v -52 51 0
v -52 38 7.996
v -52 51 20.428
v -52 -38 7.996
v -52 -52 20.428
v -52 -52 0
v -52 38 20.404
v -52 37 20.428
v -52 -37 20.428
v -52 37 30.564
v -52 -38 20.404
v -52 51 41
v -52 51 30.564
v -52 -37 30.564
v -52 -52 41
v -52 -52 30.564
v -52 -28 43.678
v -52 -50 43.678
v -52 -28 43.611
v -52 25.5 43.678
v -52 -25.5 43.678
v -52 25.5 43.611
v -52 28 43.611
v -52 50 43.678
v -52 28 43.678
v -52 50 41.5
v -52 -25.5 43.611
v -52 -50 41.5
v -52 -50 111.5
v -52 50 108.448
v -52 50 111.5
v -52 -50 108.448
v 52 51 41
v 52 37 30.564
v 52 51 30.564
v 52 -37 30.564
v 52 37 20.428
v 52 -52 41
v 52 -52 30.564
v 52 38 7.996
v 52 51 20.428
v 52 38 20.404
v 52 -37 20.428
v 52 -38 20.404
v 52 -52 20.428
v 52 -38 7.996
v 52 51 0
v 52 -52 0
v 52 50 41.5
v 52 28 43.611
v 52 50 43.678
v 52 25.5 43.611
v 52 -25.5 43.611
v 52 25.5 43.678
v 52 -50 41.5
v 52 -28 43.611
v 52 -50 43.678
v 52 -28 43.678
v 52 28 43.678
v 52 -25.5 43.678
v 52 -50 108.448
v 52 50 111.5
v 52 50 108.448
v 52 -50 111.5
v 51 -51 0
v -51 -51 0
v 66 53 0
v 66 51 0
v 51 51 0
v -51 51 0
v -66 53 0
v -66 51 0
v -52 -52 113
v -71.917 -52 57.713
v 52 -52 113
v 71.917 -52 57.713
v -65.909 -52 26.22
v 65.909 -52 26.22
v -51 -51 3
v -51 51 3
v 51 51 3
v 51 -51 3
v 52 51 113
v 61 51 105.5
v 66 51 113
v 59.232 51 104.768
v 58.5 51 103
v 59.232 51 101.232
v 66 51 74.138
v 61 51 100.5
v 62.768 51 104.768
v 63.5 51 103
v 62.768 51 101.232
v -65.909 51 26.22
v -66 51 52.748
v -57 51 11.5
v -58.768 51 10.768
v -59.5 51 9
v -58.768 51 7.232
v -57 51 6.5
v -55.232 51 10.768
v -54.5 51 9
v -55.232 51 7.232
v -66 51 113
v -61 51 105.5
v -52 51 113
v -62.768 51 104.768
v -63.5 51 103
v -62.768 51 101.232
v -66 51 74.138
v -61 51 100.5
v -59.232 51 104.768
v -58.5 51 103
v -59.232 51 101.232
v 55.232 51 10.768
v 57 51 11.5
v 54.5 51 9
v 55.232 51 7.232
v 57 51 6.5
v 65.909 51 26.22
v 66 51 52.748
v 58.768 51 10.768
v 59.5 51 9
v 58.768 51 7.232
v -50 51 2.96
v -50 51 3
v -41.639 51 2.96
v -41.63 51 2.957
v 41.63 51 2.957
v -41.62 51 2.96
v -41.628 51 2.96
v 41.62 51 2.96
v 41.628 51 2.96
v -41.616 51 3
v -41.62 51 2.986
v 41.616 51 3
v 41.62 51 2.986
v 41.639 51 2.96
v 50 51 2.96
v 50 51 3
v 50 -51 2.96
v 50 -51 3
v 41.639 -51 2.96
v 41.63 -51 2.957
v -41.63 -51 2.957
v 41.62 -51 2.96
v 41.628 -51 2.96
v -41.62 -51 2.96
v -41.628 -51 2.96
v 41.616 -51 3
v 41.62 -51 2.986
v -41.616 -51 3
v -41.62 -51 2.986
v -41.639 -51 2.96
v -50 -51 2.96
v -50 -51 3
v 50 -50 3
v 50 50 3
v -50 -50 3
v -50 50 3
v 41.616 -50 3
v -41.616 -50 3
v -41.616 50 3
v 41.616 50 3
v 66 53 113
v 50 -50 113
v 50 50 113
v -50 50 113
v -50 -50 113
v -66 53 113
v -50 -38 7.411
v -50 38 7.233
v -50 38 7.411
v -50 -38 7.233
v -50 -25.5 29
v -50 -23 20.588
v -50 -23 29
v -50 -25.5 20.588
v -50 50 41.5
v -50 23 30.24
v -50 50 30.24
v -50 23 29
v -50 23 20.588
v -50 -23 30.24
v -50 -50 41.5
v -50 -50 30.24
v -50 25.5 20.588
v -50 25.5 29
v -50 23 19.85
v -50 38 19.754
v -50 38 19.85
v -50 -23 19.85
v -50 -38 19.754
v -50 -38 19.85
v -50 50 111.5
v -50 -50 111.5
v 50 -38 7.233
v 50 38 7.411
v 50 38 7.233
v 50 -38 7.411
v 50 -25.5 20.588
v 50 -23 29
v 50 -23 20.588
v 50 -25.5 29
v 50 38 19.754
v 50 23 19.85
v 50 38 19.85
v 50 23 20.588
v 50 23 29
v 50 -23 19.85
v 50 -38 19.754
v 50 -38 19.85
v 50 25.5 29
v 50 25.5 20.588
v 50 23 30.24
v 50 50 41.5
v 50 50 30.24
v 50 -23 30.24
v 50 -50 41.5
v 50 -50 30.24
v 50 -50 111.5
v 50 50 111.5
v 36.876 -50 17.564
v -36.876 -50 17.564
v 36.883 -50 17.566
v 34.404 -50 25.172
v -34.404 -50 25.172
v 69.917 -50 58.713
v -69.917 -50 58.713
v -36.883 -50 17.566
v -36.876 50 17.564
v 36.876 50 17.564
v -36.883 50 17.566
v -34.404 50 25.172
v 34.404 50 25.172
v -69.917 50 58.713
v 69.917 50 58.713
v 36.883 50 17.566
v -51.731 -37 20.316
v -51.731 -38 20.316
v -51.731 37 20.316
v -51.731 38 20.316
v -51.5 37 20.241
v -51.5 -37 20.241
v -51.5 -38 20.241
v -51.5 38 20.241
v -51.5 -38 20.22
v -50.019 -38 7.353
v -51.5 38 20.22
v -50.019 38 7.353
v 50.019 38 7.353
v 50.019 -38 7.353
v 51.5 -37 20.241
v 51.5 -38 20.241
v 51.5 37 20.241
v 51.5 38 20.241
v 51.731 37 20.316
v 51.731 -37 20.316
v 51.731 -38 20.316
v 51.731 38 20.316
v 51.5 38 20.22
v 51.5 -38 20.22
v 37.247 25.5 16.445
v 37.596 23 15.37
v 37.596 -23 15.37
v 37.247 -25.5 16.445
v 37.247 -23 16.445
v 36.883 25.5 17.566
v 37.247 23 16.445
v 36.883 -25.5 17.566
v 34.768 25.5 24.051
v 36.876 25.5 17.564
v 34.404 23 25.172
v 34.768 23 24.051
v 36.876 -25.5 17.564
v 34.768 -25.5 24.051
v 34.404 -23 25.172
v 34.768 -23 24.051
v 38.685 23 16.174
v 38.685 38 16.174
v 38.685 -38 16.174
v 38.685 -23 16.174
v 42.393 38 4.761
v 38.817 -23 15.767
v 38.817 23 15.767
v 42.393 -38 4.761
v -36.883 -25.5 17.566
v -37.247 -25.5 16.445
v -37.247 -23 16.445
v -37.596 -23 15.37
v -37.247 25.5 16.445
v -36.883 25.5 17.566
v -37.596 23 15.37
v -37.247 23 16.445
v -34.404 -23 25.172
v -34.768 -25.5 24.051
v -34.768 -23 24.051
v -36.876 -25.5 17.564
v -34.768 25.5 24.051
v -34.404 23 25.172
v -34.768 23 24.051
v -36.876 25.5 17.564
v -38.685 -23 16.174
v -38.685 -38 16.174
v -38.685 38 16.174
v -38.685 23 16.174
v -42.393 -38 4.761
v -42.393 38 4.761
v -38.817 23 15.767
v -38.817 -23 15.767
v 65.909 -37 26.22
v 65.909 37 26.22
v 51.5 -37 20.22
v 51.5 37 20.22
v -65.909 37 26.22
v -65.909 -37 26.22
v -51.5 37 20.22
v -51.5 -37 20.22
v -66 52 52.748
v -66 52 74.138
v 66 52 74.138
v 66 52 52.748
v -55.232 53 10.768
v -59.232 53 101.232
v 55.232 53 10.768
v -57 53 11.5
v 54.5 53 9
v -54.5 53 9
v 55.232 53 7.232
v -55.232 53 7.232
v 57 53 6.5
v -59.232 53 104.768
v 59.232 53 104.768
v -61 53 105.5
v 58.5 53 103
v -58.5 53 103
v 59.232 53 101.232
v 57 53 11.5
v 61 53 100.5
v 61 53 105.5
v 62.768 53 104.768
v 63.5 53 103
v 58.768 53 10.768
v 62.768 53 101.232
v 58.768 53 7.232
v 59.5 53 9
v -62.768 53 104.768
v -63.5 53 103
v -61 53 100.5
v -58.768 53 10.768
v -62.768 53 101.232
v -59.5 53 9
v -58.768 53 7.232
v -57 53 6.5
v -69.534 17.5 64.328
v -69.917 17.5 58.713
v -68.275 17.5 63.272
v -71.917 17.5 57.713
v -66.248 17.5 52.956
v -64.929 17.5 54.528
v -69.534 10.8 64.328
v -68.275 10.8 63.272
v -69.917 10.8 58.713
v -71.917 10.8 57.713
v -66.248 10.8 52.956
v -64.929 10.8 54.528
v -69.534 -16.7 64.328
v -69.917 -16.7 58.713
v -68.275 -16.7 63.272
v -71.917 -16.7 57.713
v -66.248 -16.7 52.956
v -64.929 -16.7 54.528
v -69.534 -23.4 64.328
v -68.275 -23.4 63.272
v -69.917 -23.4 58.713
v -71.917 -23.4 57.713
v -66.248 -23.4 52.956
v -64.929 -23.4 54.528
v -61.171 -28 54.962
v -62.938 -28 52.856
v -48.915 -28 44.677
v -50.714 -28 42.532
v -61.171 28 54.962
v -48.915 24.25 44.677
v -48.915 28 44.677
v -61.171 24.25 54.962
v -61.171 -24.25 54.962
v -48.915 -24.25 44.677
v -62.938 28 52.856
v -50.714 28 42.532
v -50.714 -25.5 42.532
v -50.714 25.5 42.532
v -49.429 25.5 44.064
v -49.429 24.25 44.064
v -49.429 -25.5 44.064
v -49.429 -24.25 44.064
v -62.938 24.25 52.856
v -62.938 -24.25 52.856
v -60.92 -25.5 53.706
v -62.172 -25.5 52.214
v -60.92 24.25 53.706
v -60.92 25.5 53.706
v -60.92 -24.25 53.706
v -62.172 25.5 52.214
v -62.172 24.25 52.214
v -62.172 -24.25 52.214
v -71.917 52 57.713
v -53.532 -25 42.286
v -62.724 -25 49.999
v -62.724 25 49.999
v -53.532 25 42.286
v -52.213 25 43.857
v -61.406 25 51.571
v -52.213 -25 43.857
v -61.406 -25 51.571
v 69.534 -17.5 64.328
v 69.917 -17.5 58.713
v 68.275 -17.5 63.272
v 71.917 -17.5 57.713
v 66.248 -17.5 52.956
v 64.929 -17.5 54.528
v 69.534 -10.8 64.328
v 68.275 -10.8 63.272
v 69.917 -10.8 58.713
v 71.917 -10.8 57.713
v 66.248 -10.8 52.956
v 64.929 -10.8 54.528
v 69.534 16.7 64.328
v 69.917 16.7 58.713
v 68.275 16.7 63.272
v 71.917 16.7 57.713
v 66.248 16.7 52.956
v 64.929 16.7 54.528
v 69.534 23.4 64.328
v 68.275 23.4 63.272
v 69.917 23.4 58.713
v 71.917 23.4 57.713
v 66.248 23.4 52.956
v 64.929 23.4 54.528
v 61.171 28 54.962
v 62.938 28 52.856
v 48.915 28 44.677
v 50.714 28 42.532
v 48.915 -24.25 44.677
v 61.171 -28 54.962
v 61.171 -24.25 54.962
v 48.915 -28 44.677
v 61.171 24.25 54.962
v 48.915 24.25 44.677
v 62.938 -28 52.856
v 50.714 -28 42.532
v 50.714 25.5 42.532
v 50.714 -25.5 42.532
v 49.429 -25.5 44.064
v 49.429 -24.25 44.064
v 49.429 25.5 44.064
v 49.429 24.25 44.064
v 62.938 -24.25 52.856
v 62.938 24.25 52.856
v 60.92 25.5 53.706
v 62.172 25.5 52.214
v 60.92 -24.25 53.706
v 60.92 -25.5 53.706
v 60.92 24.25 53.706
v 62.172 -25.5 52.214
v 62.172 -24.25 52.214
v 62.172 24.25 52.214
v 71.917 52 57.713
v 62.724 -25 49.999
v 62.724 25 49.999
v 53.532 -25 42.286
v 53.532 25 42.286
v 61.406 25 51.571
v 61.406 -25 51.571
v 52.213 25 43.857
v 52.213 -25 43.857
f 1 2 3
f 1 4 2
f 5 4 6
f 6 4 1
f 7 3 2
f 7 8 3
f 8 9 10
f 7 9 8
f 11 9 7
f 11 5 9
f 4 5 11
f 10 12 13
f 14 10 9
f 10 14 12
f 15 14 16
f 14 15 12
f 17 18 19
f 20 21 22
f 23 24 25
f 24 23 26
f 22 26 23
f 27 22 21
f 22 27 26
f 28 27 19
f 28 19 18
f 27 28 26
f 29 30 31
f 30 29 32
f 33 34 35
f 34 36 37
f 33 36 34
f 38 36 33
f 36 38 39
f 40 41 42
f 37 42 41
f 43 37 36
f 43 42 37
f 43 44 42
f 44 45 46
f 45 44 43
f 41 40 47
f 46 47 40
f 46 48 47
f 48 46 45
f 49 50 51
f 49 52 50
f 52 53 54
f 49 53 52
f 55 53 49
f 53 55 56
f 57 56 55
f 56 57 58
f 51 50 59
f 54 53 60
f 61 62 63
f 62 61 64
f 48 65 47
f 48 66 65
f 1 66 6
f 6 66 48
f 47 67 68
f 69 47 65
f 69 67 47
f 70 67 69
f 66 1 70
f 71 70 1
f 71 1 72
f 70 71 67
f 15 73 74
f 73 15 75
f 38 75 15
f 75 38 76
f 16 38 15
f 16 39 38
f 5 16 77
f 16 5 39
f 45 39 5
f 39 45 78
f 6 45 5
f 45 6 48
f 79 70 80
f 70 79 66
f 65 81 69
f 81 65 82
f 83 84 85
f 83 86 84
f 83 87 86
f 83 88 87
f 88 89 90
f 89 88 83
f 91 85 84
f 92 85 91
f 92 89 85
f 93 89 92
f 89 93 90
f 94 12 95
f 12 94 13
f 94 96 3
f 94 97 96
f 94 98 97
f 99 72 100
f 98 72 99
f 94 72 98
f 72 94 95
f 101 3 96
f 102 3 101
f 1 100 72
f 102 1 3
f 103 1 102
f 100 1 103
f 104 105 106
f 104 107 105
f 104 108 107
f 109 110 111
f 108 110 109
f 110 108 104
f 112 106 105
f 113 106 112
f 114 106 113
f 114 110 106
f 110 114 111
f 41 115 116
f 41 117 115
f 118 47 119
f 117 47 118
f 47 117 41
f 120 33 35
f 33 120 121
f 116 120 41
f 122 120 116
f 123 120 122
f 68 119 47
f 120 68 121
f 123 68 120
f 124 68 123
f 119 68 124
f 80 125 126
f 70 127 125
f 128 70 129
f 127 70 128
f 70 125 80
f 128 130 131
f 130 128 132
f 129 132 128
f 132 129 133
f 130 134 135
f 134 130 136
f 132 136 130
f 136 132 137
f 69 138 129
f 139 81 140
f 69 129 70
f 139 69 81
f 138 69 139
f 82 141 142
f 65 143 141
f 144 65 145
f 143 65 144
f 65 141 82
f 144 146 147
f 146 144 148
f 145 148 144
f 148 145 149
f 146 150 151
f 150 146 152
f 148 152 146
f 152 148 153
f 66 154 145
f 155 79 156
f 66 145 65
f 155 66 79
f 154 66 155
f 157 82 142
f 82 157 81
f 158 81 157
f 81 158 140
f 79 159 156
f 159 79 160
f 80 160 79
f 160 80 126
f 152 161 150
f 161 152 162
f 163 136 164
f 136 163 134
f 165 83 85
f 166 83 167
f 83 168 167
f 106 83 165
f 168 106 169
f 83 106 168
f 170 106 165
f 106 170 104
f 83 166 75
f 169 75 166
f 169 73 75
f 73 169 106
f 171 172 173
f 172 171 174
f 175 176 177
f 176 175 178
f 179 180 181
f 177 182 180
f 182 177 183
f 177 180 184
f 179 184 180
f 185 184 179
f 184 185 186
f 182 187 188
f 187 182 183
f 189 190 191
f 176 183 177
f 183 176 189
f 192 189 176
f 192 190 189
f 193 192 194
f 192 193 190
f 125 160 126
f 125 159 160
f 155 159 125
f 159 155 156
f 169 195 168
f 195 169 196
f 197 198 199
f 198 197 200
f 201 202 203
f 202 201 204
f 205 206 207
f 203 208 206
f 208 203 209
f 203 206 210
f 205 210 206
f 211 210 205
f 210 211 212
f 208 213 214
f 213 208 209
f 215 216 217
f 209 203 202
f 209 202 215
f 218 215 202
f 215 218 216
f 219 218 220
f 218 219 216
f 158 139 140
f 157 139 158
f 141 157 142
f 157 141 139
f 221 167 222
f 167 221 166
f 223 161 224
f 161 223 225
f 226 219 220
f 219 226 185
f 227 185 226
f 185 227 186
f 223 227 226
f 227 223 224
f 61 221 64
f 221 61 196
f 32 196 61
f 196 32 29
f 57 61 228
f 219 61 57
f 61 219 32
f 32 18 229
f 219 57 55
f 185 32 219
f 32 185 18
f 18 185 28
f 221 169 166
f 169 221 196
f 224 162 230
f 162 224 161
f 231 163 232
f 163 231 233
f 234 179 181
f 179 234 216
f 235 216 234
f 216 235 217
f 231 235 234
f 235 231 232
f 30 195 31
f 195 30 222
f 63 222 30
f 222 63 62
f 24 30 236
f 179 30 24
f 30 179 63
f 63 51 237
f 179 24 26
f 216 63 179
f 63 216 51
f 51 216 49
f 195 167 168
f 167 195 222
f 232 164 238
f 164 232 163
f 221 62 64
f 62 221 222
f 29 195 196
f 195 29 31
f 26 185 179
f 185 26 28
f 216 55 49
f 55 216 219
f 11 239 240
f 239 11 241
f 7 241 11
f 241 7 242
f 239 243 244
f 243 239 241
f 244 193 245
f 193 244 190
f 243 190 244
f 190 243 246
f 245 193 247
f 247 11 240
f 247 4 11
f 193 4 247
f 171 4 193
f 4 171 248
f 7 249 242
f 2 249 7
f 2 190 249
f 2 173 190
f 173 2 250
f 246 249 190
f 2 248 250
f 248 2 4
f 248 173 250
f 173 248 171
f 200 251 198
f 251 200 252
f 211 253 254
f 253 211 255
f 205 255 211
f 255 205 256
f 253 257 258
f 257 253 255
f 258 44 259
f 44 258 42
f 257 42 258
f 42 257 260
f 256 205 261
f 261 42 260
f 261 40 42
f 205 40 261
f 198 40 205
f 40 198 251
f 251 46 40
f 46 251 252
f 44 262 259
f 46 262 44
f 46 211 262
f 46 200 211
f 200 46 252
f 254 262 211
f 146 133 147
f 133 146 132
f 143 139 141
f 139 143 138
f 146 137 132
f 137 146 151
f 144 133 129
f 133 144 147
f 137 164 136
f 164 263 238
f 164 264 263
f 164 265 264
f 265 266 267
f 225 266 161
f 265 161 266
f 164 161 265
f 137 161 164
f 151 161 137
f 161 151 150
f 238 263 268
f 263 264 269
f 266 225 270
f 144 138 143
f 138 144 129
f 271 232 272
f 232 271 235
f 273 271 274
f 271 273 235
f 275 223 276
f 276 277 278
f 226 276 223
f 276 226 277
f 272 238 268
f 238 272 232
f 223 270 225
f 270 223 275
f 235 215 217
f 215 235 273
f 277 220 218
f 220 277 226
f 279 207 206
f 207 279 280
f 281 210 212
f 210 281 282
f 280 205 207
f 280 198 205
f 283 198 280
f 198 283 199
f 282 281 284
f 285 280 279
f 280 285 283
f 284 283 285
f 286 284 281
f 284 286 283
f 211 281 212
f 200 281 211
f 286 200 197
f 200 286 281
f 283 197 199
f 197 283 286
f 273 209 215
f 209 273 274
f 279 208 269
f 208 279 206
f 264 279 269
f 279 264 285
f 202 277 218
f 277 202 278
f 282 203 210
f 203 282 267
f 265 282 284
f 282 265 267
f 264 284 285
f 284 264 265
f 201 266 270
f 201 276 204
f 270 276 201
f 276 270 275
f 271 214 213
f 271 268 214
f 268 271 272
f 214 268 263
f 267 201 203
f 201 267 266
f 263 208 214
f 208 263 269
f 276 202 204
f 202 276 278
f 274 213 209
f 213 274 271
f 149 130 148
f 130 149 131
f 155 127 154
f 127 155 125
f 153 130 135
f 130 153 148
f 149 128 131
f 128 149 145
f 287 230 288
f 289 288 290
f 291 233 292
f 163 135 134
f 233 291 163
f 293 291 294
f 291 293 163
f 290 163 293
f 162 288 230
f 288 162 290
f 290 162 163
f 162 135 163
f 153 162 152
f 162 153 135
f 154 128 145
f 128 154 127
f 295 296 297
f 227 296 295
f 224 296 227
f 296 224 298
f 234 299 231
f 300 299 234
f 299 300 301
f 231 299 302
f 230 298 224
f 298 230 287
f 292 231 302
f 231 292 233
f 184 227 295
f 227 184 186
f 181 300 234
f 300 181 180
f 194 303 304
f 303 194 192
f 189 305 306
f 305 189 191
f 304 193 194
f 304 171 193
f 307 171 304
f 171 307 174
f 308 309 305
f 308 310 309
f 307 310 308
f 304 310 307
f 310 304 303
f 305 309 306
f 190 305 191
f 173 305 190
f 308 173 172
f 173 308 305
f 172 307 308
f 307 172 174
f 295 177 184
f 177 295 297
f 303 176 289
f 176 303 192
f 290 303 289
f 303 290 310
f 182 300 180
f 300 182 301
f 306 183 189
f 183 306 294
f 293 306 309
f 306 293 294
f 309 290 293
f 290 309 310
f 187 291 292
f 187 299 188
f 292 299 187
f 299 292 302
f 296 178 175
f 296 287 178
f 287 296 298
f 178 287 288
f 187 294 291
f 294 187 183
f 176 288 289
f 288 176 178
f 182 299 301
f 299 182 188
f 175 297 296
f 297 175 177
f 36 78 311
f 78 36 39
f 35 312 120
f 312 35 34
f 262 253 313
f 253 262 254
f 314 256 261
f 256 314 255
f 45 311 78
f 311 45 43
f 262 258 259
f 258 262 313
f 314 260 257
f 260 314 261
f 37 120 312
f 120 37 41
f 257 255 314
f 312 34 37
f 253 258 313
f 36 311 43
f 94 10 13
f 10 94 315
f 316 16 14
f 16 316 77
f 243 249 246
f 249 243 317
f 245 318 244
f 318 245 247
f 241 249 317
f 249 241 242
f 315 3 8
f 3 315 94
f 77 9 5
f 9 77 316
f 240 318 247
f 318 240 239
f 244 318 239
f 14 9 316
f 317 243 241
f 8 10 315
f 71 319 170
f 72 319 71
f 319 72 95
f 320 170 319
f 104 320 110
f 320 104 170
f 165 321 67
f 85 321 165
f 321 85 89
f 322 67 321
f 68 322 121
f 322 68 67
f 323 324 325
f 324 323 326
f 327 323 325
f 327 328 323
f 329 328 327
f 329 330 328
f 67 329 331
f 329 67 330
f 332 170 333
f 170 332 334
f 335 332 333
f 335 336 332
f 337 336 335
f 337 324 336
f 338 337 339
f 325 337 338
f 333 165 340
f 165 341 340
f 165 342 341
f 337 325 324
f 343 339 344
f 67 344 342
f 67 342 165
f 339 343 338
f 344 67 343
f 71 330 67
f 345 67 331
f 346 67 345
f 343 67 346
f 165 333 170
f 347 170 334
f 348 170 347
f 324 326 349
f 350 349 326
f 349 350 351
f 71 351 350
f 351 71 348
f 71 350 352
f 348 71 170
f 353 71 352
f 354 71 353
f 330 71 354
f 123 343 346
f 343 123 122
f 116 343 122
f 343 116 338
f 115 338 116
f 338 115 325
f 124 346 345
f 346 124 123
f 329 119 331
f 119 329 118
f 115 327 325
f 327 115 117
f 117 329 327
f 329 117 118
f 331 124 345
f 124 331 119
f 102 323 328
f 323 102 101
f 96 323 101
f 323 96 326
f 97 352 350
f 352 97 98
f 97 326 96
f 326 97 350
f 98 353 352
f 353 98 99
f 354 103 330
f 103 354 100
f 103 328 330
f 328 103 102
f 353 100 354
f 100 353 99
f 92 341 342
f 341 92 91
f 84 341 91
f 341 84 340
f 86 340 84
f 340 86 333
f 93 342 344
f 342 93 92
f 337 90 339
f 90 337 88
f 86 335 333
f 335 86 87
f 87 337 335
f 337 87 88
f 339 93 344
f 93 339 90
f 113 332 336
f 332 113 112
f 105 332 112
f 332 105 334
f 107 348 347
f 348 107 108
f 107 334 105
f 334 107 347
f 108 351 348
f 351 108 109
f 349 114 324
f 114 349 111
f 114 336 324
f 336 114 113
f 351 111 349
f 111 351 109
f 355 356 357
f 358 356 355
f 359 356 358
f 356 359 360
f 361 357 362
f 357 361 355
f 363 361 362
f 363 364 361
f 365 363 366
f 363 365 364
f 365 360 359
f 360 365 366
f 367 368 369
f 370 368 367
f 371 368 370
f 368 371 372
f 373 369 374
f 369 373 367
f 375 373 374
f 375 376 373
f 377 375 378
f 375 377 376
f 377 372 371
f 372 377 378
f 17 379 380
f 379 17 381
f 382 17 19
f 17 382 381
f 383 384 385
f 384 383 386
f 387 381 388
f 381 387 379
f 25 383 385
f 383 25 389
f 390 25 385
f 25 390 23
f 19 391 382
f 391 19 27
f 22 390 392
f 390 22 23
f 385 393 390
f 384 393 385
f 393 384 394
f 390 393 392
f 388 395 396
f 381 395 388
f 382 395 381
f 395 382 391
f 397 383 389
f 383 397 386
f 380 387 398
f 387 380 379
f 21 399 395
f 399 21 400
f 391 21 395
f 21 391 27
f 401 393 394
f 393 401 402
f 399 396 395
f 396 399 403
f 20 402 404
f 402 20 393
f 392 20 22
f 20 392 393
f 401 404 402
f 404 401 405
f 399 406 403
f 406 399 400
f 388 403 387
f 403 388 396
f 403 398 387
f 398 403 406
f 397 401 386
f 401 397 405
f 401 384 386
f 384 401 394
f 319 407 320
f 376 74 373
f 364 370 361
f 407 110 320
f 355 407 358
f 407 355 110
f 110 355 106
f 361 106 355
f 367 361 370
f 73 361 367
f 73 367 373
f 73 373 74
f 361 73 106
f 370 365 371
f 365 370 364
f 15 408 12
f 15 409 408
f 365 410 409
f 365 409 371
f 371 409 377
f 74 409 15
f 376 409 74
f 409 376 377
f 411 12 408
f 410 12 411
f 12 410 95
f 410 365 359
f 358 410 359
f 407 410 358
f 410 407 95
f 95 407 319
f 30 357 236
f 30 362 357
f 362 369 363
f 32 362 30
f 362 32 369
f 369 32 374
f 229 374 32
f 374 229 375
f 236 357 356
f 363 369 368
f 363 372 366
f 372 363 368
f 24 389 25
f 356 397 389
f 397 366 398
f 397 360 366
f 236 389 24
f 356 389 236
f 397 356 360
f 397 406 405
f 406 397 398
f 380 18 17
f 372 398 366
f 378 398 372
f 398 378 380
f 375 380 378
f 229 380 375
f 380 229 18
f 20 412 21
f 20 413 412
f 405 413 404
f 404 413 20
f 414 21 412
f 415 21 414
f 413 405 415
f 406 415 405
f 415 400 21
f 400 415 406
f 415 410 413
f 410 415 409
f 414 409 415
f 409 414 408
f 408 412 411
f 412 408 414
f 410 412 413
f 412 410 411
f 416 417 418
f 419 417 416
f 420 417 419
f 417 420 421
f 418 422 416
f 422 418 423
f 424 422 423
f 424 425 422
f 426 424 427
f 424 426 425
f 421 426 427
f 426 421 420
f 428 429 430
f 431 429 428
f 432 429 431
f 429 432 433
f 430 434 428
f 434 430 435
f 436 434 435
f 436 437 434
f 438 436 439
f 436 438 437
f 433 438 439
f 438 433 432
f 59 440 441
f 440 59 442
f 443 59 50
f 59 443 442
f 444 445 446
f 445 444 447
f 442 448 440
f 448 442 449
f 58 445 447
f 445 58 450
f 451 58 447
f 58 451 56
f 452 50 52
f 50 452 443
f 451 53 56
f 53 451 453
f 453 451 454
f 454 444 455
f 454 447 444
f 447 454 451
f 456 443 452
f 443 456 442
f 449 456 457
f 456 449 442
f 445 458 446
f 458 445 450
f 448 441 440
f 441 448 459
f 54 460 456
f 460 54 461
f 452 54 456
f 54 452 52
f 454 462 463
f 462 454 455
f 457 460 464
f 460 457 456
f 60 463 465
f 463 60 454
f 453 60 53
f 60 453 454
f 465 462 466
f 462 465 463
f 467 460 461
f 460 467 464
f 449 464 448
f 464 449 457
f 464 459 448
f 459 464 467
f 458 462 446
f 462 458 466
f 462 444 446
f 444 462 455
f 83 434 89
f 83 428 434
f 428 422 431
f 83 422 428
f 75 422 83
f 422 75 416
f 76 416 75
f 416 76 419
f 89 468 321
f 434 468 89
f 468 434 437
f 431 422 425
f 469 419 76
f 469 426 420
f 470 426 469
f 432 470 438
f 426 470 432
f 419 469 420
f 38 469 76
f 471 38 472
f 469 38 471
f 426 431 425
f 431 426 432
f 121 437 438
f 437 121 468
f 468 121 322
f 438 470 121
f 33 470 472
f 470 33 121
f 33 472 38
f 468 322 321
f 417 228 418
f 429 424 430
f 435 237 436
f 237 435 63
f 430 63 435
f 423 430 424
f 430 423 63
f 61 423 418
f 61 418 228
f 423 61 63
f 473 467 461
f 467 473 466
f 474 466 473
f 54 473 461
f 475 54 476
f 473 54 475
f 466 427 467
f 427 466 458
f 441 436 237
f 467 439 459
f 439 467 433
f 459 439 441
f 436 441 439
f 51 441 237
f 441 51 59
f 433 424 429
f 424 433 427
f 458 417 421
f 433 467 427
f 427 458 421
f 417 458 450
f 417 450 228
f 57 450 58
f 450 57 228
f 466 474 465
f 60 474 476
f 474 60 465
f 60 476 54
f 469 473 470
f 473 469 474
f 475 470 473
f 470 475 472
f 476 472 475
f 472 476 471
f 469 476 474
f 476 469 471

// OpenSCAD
// file: UVA_housing.scad
//LED housing UVA top

module UVA_housing() {
difference() {
union() {
translate([0,-8.38,14.54]) 
    cube([104,10,5]);
    rotate ([72,0,0]) cube([104,16,14]); 
    translate([0, 0.8, -8]) rotate([72,0,0])
    color("red") {
    cube([104,8,17.24]); }
    }
color("yellow") {
    translate([14,2,2]) rotate([72,0,0]) 
    cube([76,12,14]);
    }
color("blue") {
    translate([29, 4, 1.8]) rotate([162,0,0]) 
    cube ([46,18,12]); }
    translate([0,0,-8])
    cube([104,20,28]);
    translate([26.5,0,-6.5]) rotate([72,0,0])
    cube([51,8,25.5]);
    }
}

//Support for UVA board
module UVA_support() {
difference() {
    rotate([0,90,0]) translate([-2.65,0,0])
linear_extrude(height = 104, scale = 1) 
polygon(points=[[0,0],[10.5,0],[6, 14.409]]);
    rotate([0,90,0]) translate([-5,0,15])
    cube([40,30,74]);
    }
}
UVA_housing();
UVA_support();
// file: UVC_housing.scad
//UVC-LED housing

UVC_housing();

module UVC_housing() {
difference() {
UVC_module();
    rotate([90, 270, 50]) translate([8, -49, -2.1])
    union() {
    translate([26.5, 8.4, 2]) cube([6.7, 22, 6.7]);
    translate([60.7, 8.4, 2]) cube([6.7, 22, 6.7]); 
    }
}    
rotate([90, 90, 50]) translate([-80, 0, 2]) filterholder();
}
module UVC_module() {
difference() {
linear_extrude(height = 104, scale = 1) 
polygon(points=[[0,0],[72,0],[16.713, 19.917]]);
translate([1,-2,2])
linear_extrude(height = 100, scale = 1) 
polygon(points=[[0,0],[72,0],[16.713,19.917]]);
    rotate ([0,0,50]) translate([2,-10,27]) cube([12,22,50]);
}
}
module filterholder() {
difference() {
cube([56, 16, 2.8]);
translate([2.5, 0, 0]) cube([51, 15, 2]);
translate([3.75, 0, 0]) cube([48.5, 13, 8]);
translate([3.75, 0, 0]) cube([48.5, 16, 8]);
}
}
// main file
//camera tower

use <UVC_housing.scad>
use <UVA_housing.scad>

difference() {
union() {
    base();
    translate([0, 0, 3])
    cubus();
    }
    //UVC cutout 
    translate([-52,-50,41.5]) cube([104,100,70]);
    //UVA cutouts
    translate([-52,0,14.2]) rotate([0,18,0]) cube([8,76,11.8], center=true);
    translate([52,0,14.2]) rotate([0,-18,0]) cube([8,76,11.8], center=true);
    }
    rotate([180,0,90]) translate([-52,50,-22.5]) UVA_housing();
    rotate([180,0,270]) translate([-52,50,-22.5]) UVA_housing();
    rotate([180,0,90]) translate([-52,51.5,-22.87]) UVA_support();
    rotate([180,0,270]) translate([-52,51.5,-22.87]) UVA_support();
    rotate([0,270,90]) translate([41,52,-52]) UVC_housing();
    rotate([0,270,270]) translate([41,52,-52]) UVC_housing();
//tower mountings
difference() {
    union() {
    translate([-66,51,0]) cube([132,2,113]);
    }
    translate([57, 60, 9]) rotate([90,0,0])
    cylinder(h=130, r=2.5);
    translate([-57, 60, 9]) rotate([90,0,0])
    cylinder(h=130, r=2.5);
    translate([61, 60, 103]) rotate([90,0,0])
    cylinder(h=130, r=2.5);
    translate([-61, 60, 103]) rotate([90,0,0])
    cylinder(h=130, r=2.5);
}
module cubus() {
difference() {
    linear_extrude(height = 110, scale = 1) rectangular();
    translate([0, 0, 0])
    linear_extrude(height = 130, scale = 1) rectangular_inside();
    } 
}
module rectangular() {
    a = 52;
    b = 52;
    polygon(points=[[-a,-b],[a,-b],[a,b],[-a,b]]); 
}
module rectangular_inside() {
    a1 = 50;
    b1 = 50;
    polygon(points=[[-a1,-b1],[a1,-b1],[a1,b1],[-a1,b1]]); 
}
module rectangular_base() {
    x = 52;
    y = 52;
    polygon(points=[[-x,-y],[x,-y],[x,y],[-x,y]]); 
}
module rectangular_base_inside() {
    x = 51;
    y = 51;
    polygon(points=[[-x,-y],[x,-y],[x,y],[-x,y]]); 
}
module base() {
    difference() {
    linear_extrude(height = 4, scale = 1) rectangular_base();
    linear_extrude(height = 4, scale = 1) rectangular_base_inside();
    }    
}
